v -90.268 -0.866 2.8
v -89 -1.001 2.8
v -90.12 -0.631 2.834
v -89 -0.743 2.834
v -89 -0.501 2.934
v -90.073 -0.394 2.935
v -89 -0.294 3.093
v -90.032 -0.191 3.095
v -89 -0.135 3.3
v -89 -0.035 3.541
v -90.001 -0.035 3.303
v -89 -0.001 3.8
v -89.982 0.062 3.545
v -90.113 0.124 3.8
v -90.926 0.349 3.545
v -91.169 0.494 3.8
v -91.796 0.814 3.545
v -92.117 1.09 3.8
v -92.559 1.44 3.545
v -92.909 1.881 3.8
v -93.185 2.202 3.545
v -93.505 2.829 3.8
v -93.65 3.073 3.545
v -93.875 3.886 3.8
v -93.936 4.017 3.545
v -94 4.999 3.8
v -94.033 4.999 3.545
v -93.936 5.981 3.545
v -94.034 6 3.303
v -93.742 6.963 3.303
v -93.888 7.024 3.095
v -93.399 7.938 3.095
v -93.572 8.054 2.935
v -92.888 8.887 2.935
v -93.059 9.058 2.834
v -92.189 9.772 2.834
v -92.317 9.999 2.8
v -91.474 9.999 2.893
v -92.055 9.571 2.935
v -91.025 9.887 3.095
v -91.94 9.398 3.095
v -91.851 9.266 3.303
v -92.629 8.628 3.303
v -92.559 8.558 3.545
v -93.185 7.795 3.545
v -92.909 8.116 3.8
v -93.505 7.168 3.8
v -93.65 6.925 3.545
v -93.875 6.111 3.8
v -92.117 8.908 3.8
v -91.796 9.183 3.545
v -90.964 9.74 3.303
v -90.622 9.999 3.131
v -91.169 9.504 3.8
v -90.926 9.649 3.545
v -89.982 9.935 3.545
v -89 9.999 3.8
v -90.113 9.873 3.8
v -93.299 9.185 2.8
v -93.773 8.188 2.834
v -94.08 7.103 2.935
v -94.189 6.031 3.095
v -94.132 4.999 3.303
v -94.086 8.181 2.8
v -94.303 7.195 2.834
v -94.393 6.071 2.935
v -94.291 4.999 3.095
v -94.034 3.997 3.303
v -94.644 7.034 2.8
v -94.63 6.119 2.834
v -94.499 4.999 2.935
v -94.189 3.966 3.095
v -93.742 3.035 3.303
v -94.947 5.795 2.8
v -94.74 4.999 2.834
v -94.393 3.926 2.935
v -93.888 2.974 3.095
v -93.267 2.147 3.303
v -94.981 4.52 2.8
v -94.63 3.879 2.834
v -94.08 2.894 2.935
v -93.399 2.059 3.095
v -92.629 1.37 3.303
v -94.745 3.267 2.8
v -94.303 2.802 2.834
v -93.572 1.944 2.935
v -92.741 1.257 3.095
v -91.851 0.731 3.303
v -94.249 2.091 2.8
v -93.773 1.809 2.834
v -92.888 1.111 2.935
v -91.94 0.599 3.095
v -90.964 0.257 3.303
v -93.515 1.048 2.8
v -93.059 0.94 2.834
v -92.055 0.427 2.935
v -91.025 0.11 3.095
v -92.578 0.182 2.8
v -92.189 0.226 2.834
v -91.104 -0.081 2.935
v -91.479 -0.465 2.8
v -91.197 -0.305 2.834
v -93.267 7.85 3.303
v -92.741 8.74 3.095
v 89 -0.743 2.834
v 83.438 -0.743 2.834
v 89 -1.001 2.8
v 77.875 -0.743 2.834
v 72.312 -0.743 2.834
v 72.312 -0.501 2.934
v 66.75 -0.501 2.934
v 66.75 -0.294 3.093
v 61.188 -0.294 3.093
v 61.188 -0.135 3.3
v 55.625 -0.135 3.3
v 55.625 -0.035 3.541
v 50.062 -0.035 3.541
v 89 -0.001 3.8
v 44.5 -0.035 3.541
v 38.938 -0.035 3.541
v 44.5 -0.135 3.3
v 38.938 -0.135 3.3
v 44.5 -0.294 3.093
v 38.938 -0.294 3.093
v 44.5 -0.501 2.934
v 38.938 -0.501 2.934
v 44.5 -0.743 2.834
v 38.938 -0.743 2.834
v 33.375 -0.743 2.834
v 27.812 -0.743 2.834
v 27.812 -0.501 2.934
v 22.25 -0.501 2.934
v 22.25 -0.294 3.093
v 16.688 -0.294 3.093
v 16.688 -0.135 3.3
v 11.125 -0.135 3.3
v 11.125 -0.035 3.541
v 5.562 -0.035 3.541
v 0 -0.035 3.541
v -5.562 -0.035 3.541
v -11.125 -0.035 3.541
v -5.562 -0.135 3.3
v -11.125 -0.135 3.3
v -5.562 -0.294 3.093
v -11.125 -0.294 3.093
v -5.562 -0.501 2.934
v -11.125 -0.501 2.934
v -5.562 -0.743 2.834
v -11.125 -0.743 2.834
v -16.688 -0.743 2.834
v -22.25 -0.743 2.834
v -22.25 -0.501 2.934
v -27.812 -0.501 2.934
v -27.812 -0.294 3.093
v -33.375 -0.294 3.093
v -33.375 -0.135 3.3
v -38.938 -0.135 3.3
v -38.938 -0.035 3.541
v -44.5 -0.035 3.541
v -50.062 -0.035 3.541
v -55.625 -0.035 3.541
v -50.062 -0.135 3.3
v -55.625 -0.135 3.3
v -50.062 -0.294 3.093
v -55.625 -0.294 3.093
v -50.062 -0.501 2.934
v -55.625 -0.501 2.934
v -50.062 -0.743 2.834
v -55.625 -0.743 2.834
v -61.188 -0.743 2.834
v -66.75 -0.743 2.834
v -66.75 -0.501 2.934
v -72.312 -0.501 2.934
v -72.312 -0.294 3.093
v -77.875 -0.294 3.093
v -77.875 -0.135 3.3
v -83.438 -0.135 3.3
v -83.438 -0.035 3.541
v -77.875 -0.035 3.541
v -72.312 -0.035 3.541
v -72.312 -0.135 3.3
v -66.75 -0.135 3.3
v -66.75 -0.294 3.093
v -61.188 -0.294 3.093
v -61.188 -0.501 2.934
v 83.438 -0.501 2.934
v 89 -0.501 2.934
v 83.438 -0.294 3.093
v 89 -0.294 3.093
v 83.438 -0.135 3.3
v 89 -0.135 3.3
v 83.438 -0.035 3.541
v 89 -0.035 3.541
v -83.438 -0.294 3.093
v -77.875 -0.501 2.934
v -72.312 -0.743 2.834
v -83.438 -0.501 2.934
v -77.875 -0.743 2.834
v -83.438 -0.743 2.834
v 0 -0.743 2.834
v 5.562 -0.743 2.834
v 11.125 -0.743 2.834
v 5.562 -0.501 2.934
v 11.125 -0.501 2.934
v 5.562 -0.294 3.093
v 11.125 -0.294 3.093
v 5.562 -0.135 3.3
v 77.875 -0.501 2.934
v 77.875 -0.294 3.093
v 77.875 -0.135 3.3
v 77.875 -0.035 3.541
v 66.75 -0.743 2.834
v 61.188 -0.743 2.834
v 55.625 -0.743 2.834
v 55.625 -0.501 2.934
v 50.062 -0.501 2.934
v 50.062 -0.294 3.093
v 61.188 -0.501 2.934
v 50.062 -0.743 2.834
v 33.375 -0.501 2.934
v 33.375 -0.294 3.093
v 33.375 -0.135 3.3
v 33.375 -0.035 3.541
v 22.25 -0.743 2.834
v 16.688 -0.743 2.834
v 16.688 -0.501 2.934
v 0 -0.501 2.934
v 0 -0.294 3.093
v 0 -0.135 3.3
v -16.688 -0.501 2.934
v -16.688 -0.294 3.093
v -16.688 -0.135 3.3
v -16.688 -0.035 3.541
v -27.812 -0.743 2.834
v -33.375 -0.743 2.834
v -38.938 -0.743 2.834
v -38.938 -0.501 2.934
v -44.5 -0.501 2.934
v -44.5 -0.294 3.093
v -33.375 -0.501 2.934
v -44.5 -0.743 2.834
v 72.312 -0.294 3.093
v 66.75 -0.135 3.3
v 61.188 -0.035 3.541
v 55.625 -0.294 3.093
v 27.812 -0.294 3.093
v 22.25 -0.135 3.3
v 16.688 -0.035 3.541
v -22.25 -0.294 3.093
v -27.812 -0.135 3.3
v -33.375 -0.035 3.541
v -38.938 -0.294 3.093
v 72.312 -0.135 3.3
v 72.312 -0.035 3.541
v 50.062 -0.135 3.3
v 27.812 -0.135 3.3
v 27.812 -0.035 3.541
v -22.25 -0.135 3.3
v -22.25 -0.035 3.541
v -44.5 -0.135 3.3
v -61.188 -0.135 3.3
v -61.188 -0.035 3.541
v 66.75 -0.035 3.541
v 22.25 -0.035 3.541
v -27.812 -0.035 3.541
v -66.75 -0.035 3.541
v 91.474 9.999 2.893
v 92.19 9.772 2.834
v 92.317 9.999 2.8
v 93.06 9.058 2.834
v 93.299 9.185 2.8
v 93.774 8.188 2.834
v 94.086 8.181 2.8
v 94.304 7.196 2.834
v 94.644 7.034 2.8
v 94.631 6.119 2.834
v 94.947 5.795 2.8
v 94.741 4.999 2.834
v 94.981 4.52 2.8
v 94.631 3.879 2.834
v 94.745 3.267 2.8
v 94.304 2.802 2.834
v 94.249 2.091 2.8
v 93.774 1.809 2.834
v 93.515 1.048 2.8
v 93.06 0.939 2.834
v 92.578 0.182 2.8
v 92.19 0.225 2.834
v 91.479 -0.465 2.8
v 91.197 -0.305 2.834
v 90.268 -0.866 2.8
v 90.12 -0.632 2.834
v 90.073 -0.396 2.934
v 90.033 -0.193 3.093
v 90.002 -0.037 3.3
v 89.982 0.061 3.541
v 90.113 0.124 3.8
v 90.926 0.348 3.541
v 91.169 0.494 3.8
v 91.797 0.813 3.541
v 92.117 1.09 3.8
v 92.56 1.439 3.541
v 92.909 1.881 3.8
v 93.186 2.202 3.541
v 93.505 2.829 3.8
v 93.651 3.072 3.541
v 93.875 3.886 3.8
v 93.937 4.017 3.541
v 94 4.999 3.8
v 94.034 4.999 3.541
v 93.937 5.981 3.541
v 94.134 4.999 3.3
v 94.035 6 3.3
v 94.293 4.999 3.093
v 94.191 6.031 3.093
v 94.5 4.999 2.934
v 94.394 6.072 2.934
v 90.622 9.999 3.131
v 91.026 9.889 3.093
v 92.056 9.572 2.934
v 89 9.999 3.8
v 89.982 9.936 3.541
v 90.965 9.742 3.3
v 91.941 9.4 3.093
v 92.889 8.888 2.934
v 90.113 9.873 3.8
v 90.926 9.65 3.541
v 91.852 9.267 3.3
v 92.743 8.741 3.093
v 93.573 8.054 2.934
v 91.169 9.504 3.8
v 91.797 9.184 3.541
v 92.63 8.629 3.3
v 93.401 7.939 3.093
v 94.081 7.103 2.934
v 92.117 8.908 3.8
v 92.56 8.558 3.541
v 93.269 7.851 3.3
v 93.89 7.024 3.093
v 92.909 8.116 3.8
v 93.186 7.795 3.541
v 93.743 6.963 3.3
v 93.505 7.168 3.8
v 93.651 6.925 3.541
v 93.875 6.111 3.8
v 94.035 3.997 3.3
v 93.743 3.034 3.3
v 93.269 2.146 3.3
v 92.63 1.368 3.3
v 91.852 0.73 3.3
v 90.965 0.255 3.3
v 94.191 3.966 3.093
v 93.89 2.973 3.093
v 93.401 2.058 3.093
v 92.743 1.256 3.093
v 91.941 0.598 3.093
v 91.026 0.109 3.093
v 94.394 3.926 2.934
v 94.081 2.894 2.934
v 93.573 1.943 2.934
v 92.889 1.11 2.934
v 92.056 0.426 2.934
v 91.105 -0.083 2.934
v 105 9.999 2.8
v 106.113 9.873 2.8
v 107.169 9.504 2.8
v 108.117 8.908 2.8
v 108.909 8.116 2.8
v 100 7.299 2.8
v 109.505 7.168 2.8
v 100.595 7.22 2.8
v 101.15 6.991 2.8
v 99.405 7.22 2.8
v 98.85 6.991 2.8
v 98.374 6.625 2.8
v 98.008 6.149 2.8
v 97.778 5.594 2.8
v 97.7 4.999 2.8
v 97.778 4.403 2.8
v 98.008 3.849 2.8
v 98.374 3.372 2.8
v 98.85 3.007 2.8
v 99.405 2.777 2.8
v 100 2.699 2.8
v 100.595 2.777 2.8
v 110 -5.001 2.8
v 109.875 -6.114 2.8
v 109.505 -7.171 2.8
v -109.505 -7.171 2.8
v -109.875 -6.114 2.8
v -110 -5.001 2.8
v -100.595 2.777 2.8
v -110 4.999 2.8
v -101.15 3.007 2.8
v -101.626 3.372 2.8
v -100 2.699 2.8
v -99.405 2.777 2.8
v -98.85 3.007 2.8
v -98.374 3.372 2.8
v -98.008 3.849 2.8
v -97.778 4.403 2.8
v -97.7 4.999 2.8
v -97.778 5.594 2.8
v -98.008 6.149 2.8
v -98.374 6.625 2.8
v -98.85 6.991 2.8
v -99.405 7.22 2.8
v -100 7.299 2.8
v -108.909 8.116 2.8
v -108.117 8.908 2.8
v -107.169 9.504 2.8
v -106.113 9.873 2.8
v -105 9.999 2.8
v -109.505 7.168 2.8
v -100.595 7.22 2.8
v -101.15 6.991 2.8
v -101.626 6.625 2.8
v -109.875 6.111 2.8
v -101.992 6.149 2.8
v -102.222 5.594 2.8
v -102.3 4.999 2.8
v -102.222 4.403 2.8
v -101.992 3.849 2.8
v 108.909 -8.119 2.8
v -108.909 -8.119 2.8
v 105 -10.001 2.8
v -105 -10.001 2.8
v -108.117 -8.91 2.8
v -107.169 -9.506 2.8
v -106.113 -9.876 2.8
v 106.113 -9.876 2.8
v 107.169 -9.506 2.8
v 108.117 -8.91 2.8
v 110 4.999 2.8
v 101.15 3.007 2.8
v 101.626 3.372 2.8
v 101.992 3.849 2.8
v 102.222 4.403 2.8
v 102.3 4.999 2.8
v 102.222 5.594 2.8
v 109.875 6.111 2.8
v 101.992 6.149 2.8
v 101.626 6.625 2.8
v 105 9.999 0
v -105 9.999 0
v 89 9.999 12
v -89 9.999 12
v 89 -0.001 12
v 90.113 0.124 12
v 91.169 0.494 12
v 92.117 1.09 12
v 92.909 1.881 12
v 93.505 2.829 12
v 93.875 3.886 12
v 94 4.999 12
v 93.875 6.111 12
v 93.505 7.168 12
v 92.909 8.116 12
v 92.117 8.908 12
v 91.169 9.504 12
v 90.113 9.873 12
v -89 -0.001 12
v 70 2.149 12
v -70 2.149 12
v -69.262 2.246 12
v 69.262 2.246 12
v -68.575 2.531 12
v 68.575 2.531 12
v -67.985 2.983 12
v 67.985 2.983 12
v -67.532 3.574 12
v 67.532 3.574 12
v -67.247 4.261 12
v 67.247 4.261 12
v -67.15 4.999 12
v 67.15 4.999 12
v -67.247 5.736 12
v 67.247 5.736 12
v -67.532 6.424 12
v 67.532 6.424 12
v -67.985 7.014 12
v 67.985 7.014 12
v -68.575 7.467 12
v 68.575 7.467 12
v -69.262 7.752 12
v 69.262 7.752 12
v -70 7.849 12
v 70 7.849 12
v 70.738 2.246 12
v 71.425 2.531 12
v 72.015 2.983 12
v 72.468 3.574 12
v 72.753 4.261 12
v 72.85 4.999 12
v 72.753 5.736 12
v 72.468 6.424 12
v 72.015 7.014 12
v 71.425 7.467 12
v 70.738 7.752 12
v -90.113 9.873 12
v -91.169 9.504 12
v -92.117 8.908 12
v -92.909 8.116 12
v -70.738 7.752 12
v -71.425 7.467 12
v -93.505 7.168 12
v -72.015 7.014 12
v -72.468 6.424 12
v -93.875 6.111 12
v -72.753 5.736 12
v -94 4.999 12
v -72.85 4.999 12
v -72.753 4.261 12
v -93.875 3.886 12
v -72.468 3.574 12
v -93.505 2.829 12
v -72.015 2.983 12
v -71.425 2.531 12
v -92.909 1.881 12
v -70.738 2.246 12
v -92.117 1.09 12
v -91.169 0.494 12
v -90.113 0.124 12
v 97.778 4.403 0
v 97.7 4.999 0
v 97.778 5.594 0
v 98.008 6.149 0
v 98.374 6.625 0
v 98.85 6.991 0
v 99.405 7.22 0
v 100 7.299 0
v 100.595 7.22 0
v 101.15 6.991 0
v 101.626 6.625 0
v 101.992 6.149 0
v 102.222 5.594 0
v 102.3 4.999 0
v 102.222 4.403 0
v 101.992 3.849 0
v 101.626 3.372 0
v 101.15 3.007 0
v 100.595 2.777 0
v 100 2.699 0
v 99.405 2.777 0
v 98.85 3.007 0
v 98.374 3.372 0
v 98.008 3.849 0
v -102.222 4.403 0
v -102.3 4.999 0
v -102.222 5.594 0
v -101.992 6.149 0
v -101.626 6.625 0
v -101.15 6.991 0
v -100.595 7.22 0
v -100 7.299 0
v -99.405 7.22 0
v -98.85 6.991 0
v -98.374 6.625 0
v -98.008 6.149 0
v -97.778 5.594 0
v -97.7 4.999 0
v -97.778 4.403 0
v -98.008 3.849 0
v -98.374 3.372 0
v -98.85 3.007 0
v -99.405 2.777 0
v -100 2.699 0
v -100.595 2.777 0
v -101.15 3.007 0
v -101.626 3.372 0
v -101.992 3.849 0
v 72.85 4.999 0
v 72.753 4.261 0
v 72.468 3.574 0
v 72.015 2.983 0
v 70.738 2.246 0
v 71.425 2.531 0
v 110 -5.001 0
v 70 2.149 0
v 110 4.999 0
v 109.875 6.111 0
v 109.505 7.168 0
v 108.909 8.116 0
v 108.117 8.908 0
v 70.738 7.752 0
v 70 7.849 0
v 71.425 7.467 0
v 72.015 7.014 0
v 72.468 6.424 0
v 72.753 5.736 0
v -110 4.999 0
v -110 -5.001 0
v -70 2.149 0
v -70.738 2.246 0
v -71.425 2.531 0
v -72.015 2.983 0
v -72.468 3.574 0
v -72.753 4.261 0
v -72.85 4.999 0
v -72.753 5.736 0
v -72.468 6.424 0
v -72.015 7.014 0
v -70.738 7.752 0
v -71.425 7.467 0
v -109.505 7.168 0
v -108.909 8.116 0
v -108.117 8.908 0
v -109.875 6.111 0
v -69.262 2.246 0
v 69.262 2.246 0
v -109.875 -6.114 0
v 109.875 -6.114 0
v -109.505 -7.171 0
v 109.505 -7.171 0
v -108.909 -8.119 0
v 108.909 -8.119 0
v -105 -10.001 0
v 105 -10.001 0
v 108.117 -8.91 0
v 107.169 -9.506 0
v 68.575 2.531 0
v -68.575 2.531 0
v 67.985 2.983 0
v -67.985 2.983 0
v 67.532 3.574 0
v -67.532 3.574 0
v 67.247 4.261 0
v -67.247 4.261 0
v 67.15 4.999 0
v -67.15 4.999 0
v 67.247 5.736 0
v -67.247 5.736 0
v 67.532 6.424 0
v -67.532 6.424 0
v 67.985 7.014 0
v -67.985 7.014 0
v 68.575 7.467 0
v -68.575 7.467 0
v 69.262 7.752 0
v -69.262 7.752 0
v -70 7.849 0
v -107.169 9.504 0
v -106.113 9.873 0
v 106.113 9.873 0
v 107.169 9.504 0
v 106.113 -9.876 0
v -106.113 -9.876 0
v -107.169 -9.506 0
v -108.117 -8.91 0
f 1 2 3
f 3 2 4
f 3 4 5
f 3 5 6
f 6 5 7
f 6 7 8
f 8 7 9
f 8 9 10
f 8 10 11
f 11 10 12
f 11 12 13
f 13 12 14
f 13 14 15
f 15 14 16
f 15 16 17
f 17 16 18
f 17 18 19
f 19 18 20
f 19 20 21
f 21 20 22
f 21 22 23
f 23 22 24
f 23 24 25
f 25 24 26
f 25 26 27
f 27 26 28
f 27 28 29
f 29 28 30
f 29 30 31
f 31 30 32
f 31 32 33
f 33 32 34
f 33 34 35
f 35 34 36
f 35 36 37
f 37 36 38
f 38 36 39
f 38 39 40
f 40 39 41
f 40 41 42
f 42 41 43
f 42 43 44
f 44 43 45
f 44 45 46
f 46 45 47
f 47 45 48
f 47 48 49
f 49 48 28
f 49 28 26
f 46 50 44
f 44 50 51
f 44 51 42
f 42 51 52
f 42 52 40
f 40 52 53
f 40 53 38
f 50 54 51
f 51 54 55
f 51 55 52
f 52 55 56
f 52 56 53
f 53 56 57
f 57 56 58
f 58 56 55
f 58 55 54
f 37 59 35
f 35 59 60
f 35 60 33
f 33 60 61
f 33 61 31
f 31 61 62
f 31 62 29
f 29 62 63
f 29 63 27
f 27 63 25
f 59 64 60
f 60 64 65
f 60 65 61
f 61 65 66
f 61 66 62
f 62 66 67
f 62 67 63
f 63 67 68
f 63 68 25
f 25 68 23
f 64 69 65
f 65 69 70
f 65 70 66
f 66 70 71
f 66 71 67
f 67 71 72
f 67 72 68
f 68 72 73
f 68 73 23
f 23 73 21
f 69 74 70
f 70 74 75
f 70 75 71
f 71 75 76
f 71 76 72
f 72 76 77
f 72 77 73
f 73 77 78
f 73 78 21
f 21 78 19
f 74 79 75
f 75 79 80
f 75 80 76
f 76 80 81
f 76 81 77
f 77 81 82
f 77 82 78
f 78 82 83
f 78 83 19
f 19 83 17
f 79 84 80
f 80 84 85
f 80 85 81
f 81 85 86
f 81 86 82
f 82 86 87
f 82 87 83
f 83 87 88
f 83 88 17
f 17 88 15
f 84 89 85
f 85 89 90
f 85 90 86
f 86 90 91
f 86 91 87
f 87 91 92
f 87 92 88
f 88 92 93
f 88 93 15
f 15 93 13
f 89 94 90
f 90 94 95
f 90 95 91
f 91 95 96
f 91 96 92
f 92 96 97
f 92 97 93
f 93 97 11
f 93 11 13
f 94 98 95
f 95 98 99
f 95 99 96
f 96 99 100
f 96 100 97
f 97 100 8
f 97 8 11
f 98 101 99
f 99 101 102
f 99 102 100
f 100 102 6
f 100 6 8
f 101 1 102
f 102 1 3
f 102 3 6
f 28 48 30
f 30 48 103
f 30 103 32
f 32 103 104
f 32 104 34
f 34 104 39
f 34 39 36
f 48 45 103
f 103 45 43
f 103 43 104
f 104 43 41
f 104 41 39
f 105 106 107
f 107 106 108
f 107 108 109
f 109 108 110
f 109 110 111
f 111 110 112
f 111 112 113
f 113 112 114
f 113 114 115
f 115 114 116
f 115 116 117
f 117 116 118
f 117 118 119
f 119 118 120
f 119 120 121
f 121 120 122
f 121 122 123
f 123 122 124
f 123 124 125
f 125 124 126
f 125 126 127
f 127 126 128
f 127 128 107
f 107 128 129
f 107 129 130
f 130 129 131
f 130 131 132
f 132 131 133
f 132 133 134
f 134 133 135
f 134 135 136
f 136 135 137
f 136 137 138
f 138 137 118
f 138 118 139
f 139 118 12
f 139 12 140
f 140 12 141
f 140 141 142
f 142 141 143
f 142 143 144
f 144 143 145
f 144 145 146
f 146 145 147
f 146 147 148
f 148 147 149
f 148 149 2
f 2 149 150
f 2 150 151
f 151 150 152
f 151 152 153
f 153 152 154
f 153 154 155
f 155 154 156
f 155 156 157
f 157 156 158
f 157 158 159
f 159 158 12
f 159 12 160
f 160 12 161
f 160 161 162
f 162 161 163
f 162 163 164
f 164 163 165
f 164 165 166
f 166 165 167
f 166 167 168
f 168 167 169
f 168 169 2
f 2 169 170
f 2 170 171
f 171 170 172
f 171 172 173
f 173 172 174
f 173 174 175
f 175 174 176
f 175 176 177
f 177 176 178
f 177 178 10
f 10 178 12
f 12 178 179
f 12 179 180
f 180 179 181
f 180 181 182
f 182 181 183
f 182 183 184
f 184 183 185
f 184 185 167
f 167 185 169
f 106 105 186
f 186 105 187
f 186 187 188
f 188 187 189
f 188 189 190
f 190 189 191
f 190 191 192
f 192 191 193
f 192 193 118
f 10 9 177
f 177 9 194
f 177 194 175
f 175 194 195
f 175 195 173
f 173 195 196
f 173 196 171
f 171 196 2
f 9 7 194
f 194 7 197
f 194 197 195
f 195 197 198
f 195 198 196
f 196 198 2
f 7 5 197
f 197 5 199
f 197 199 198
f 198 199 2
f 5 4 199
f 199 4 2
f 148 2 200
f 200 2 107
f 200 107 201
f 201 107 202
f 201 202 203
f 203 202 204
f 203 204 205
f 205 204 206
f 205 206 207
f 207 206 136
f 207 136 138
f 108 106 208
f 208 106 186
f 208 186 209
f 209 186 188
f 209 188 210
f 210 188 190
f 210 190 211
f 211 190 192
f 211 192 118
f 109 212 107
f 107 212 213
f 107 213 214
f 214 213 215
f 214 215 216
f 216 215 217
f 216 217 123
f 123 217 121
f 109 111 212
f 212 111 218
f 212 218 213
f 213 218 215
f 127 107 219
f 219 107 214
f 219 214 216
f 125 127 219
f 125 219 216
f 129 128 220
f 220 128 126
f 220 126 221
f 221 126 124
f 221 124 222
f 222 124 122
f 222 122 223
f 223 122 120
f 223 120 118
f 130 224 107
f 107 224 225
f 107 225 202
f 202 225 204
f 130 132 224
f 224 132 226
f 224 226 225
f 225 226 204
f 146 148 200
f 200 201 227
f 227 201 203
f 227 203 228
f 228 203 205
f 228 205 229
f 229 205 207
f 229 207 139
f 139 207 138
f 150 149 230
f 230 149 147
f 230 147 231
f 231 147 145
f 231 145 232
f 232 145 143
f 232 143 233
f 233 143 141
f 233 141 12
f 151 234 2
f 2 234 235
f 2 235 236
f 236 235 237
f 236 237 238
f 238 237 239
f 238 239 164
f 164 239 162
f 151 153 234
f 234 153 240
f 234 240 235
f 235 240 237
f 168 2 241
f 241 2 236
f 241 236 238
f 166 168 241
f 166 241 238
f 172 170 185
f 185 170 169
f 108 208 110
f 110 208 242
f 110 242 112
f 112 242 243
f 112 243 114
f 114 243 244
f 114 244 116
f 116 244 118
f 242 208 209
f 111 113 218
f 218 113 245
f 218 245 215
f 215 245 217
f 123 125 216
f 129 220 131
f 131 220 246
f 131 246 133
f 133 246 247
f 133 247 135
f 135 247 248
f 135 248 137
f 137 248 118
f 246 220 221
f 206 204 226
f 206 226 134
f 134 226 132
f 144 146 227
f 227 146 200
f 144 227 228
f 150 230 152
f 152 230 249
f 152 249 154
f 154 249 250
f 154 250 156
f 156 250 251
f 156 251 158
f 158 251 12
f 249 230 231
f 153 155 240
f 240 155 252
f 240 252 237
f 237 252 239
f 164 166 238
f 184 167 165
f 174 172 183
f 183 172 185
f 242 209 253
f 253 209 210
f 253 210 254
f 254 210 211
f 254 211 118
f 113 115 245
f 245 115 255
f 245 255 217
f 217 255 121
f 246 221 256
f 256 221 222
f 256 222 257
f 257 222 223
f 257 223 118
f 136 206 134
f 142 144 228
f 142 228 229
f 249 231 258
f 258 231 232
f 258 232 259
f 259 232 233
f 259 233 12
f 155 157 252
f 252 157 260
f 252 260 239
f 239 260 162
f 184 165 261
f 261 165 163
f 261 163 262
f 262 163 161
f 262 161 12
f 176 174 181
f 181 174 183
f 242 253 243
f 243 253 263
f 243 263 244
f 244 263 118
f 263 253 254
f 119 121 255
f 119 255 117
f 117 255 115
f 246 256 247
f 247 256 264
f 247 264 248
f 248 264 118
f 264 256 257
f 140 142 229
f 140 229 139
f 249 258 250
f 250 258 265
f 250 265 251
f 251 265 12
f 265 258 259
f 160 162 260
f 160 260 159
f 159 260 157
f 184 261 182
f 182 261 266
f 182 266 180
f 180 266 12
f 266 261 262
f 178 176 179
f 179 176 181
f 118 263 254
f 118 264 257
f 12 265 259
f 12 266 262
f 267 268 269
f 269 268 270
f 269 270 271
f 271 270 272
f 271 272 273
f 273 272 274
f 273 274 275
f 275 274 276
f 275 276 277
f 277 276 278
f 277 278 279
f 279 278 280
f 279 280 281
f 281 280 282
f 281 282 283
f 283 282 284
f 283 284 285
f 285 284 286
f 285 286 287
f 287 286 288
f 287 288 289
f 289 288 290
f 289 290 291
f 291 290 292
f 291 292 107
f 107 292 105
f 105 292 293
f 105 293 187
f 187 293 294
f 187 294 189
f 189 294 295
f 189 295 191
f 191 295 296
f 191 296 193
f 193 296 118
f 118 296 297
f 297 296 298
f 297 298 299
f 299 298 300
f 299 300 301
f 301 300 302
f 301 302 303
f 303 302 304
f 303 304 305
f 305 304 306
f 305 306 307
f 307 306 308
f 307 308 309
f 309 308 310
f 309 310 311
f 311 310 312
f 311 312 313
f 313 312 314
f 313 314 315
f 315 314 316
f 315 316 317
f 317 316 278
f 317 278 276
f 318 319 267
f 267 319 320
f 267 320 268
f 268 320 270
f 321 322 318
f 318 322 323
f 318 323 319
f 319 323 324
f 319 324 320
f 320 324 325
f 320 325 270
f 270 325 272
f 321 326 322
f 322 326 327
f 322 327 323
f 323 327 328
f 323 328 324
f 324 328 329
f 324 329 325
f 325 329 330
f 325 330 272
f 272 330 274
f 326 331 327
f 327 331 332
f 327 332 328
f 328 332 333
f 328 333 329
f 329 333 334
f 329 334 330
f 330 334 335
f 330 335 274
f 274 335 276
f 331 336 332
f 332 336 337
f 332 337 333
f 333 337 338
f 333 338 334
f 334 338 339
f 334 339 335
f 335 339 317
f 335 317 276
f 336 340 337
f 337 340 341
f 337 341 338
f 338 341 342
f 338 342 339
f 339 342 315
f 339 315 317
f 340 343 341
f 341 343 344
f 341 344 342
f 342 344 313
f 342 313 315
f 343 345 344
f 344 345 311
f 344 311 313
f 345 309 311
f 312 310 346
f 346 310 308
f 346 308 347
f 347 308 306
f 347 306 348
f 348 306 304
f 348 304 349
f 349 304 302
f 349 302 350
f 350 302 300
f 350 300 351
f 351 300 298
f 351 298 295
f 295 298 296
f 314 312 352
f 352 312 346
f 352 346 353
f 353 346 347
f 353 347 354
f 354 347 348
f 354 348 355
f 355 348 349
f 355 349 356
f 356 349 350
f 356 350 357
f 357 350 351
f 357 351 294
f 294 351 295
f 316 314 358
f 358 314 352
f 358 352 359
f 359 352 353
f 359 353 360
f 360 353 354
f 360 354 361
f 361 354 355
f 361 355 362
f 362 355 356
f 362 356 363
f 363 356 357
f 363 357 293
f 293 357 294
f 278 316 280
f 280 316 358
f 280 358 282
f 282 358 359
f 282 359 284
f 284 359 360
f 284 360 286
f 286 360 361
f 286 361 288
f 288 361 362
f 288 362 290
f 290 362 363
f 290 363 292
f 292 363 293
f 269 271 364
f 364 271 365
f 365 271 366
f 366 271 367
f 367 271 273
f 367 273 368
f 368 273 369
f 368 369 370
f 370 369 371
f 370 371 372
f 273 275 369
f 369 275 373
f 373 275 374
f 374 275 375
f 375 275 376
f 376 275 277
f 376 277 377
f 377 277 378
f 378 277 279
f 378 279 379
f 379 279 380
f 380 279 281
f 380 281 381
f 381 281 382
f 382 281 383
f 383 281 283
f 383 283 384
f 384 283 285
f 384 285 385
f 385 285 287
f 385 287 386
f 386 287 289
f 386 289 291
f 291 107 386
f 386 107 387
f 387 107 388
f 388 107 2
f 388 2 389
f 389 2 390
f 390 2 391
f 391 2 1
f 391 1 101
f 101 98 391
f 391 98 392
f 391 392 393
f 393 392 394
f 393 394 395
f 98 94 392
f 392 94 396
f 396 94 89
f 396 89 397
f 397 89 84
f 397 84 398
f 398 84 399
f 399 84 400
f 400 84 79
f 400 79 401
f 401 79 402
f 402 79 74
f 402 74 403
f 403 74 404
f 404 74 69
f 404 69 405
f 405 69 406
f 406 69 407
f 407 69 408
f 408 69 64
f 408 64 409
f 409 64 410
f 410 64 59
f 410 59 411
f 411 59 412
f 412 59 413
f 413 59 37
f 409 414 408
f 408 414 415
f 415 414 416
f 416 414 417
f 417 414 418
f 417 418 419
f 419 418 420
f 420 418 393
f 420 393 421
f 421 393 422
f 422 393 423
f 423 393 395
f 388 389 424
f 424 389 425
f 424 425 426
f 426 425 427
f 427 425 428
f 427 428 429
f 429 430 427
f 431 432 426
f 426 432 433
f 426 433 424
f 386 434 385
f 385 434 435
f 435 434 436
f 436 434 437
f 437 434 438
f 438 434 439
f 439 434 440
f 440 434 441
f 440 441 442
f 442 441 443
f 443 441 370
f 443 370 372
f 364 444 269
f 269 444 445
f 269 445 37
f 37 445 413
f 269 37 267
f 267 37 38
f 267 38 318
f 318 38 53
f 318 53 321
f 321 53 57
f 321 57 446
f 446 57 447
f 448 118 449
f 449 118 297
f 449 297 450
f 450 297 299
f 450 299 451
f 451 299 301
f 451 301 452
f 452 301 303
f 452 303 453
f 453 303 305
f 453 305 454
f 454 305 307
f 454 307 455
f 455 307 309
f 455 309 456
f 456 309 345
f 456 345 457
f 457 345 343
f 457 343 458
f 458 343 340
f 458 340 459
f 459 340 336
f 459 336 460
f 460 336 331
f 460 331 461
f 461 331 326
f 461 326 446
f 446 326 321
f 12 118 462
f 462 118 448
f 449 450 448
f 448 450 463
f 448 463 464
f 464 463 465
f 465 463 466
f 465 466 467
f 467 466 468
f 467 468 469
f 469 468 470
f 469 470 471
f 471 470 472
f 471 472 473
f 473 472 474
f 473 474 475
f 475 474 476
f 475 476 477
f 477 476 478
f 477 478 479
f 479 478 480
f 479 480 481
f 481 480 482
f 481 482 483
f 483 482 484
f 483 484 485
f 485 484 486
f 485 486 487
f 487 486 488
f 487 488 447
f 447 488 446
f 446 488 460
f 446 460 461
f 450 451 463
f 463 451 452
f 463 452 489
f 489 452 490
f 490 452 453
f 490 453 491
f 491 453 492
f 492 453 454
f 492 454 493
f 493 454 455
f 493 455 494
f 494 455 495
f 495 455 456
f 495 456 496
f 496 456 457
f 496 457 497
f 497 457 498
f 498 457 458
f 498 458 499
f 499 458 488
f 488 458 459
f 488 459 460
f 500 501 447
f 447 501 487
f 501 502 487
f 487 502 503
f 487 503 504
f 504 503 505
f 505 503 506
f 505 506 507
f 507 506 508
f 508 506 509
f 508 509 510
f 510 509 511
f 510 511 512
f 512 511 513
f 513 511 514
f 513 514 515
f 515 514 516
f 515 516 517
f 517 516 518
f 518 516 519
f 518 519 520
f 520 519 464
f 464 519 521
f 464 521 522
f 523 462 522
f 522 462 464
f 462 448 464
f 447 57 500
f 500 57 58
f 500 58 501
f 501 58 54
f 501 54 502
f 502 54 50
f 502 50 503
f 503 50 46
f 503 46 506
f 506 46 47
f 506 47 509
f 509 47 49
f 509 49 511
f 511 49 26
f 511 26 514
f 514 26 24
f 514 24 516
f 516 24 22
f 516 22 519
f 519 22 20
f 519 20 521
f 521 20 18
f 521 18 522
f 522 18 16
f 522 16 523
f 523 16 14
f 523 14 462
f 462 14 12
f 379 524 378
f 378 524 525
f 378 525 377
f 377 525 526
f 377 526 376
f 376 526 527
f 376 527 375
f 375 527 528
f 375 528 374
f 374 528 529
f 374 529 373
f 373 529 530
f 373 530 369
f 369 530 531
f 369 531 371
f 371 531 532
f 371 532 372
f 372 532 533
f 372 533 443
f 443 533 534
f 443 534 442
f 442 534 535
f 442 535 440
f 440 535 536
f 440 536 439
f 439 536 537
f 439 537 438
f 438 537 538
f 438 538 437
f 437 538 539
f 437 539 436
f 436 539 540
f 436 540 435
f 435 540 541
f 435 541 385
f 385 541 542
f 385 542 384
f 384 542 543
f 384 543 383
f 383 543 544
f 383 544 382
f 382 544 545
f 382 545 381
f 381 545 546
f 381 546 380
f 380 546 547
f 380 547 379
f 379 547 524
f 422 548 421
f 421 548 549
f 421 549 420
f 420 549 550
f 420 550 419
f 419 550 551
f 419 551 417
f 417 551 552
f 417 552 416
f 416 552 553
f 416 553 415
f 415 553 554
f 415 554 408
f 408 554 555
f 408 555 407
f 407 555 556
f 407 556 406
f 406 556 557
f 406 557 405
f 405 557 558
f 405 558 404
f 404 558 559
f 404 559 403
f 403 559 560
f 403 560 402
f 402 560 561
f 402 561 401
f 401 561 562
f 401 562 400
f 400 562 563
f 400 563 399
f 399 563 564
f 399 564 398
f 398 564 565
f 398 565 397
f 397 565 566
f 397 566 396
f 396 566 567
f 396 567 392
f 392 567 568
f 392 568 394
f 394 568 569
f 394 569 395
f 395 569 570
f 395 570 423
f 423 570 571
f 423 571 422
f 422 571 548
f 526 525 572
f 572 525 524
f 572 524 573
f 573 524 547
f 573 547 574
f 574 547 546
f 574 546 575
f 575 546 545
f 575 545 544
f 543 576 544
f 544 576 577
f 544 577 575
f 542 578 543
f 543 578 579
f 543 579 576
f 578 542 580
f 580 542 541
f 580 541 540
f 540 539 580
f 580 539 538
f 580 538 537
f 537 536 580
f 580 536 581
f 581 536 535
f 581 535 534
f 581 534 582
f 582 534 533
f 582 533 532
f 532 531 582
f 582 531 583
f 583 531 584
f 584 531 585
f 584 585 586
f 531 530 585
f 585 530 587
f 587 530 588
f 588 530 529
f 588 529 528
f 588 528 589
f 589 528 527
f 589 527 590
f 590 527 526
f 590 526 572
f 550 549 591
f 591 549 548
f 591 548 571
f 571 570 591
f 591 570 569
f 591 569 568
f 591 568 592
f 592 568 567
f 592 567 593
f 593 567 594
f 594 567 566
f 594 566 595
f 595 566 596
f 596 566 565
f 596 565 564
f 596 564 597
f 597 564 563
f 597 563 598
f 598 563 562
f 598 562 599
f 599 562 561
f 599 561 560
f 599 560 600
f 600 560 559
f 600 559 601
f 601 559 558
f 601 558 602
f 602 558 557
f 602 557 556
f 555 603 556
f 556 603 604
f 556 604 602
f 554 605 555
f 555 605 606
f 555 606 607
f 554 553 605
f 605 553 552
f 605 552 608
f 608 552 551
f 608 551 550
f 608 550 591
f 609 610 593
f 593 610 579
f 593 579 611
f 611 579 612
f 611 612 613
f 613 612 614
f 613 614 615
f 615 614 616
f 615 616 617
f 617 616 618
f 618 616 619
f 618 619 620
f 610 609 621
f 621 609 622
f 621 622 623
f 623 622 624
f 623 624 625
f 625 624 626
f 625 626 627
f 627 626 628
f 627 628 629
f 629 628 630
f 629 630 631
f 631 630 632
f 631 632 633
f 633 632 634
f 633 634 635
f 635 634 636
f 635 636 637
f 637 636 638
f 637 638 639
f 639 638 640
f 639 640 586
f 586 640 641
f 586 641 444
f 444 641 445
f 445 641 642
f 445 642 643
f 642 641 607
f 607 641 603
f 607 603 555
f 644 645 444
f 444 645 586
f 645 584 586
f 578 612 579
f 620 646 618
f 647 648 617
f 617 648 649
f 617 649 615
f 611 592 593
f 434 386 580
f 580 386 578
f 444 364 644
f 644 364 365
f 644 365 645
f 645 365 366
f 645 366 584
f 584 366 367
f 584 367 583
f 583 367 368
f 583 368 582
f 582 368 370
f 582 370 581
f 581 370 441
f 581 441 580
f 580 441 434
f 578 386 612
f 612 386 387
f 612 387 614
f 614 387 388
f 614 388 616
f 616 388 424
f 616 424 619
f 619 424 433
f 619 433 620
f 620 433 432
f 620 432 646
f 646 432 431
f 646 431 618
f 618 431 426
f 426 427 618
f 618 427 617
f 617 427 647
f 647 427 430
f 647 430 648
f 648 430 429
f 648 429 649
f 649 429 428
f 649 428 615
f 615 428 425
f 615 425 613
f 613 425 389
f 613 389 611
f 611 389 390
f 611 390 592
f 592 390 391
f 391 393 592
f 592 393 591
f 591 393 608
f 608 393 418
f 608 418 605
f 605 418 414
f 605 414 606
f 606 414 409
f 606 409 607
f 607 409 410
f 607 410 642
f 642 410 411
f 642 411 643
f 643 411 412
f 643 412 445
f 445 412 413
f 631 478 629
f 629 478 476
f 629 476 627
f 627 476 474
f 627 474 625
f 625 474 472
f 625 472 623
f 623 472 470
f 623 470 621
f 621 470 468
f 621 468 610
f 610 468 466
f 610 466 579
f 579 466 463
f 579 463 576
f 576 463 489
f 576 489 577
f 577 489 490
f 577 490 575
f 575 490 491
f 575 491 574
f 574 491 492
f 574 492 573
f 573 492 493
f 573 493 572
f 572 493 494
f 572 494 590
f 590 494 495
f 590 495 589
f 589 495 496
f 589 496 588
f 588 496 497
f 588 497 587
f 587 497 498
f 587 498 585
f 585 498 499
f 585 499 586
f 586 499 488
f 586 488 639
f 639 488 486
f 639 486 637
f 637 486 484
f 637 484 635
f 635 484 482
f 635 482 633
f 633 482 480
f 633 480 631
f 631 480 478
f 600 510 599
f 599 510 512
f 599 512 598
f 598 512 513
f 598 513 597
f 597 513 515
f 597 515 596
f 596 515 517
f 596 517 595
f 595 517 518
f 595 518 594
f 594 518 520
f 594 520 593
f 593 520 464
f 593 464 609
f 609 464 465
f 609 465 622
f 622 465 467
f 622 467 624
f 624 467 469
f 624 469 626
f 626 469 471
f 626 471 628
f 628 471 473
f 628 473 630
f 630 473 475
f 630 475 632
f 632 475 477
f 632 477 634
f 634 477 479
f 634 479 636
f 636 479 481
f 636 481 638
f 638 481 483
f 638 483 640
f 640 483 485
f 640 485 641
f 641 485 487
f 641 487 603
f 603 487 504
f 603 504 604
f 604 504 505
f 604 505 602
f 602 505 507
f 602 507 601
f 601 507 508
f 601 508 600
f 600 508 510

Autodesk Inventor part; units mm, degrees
ref_plane "YZ Plane" through (0, 0, 0) normal (1, 0, 0) x (0, 1, 0)
ref_plane "XZ Plane" through (0, 0, 0) normal (0, 1, 0) x (-1, 0, 0)
ref_plane "XY Plane" through (0, 0, 0) normal (0, 0, 1) x (1, 0, 0)
sketch "Sketch7" plane through (0, 0, 0) normal (0, 0, 1) x (1, 0, 0)
  line L0 (-110, -10) -> (110, -10)
  line L1 (110, -10) -> (110, 10)
  line L2 (110, 10) -> (-110, 10)
  line L3 (-110, 10) -> (-110, -10)
  line L4 (-110, -10) -> (110, 10) construction
  line L5 (110, -10) -> (-110, 10) construction
  point P0 (0, 0)
  dimension "d27" = 20
  dimension "d28" = 220
extrude "Extrusion6" add sketch "Sketch7" along normal blind 2.8
sketch "Sketch8" plane through (0, 0, 2.8) normal (0, 0, 1) x (1, 0, 0)
  line L0 (-110, 10) -> (-110, -10) projected
  line L1 (-110, 0) -> (110, 0)
  line L2 (110, 0) -> (110, 10)
  line L3 (110, 10) -> (-110, 10)
  line L4 (-110, 10) -> (-110, 0)
  point P0 (0, 0)
  dimension "d32" = 10
extrude "Extrusion7" add sketch "Sketch8" along normal blind 9.2
sketch "Sketch9" plane through (0, 0, 12) normal (0, 0, 1) x (1, 0, 0)
  circle A0 centre (-70, 5) radius 2.85
  line L0 (0, 14) -> (0, -14) projected
  circle A1 centre (70, 5) radius 2.85
  line L1 (110, 10) -> (-110, 10) projected
  point P0 (0, 0)
  dimension "d35" = 5.7
  dimension "d36" = 5
  dimension "d37" = 70
extrude "Extrusion8" cut sketch "Sketch9" against normal through all
fillet "Fillet4" radius 5 6 edges at (-110, 0, 7.4) (-110, 10, 6) (-110, -10, 1.4) (110, -10, 1.4) (110, 0, 7.4) (110, 10, 6)
sketch "Sketch10" plane through (0, 0, 12) normal (0, 0, 1) x (1, 0, 0)
  circle A0 centre (-100, 5) radius 2.3
  circle A1 centre (-70, 5) radius 2.85 projected
  line L0 (105, 10) -> (-105, 10) projected
  line L1 (0, 14) -> (0, -14) projected
  circle A2 centre (100, 5) radius 2.3
  point P0 (0, 0)
  dimension "d43" = 4.6
  dimension "d44" = 100
  dimension "d45" = 5
  dimension "d46" = 5
extrude "Extrusion9" cut sketch "Sketch10" against normal through all contours A0 | A2
sketch "Sketch11" plane through (0, 0, 12) normal (0, 0, 1) x (1, 0, 0)
  line L0 (-115, 10) -> (-94, 10)
  line L1 (-94, 10) -> (-94, -3.6473)
  line L2 (-94, -3.6473) -> (-115, -3.6473)
  line L3 (-115, -3.6473) -> (-115, 10)
  line L4 (-110, 5) -> (-110, -5) projected
  line L5 (-105, 0) -> (105, 0) projected
  line L6 (105, 10) -> (-105, 10) projected
  line L7 (0, 14) -> (0, -14) projected
  line L8 (115, 10) -> (94, 10)
  line L9 (94, 10) -> (94, -3.6473)
  line L10 (94, -3.6473) -> (115, -3.6473)
  line L11 (115, -3.6473) -> (115, 10)
  line L12 (110, 1.6834) -> (110, -5)
  point P0 (0, 0)
  point P1 (-110, 1.6834)
  point P2 (94, 0)
  dimension "d49" = 16
extrude "Extrusion10" cut sketch "Sketch11" against normal up to surface (9.2 mm away) contours L0 L1 L2 L3 | L6 L8 L11 L10 L9
fillet "Fillet6" radius 5 4 edges at (-94, 0, 7.4) (-94, 10, 7.4) (94, 0, 7.4) (94, 10, 7.4)
fillet "Fillet7" radius 1 3 edges at (-92.5357, 1.4643, 2.8) (92.5357, 1.4643, 2.8) (0, 0, 2.8)
equation "\"d46\" = d45"
properties part number "DisplayHolderUpper_3DPrint"
